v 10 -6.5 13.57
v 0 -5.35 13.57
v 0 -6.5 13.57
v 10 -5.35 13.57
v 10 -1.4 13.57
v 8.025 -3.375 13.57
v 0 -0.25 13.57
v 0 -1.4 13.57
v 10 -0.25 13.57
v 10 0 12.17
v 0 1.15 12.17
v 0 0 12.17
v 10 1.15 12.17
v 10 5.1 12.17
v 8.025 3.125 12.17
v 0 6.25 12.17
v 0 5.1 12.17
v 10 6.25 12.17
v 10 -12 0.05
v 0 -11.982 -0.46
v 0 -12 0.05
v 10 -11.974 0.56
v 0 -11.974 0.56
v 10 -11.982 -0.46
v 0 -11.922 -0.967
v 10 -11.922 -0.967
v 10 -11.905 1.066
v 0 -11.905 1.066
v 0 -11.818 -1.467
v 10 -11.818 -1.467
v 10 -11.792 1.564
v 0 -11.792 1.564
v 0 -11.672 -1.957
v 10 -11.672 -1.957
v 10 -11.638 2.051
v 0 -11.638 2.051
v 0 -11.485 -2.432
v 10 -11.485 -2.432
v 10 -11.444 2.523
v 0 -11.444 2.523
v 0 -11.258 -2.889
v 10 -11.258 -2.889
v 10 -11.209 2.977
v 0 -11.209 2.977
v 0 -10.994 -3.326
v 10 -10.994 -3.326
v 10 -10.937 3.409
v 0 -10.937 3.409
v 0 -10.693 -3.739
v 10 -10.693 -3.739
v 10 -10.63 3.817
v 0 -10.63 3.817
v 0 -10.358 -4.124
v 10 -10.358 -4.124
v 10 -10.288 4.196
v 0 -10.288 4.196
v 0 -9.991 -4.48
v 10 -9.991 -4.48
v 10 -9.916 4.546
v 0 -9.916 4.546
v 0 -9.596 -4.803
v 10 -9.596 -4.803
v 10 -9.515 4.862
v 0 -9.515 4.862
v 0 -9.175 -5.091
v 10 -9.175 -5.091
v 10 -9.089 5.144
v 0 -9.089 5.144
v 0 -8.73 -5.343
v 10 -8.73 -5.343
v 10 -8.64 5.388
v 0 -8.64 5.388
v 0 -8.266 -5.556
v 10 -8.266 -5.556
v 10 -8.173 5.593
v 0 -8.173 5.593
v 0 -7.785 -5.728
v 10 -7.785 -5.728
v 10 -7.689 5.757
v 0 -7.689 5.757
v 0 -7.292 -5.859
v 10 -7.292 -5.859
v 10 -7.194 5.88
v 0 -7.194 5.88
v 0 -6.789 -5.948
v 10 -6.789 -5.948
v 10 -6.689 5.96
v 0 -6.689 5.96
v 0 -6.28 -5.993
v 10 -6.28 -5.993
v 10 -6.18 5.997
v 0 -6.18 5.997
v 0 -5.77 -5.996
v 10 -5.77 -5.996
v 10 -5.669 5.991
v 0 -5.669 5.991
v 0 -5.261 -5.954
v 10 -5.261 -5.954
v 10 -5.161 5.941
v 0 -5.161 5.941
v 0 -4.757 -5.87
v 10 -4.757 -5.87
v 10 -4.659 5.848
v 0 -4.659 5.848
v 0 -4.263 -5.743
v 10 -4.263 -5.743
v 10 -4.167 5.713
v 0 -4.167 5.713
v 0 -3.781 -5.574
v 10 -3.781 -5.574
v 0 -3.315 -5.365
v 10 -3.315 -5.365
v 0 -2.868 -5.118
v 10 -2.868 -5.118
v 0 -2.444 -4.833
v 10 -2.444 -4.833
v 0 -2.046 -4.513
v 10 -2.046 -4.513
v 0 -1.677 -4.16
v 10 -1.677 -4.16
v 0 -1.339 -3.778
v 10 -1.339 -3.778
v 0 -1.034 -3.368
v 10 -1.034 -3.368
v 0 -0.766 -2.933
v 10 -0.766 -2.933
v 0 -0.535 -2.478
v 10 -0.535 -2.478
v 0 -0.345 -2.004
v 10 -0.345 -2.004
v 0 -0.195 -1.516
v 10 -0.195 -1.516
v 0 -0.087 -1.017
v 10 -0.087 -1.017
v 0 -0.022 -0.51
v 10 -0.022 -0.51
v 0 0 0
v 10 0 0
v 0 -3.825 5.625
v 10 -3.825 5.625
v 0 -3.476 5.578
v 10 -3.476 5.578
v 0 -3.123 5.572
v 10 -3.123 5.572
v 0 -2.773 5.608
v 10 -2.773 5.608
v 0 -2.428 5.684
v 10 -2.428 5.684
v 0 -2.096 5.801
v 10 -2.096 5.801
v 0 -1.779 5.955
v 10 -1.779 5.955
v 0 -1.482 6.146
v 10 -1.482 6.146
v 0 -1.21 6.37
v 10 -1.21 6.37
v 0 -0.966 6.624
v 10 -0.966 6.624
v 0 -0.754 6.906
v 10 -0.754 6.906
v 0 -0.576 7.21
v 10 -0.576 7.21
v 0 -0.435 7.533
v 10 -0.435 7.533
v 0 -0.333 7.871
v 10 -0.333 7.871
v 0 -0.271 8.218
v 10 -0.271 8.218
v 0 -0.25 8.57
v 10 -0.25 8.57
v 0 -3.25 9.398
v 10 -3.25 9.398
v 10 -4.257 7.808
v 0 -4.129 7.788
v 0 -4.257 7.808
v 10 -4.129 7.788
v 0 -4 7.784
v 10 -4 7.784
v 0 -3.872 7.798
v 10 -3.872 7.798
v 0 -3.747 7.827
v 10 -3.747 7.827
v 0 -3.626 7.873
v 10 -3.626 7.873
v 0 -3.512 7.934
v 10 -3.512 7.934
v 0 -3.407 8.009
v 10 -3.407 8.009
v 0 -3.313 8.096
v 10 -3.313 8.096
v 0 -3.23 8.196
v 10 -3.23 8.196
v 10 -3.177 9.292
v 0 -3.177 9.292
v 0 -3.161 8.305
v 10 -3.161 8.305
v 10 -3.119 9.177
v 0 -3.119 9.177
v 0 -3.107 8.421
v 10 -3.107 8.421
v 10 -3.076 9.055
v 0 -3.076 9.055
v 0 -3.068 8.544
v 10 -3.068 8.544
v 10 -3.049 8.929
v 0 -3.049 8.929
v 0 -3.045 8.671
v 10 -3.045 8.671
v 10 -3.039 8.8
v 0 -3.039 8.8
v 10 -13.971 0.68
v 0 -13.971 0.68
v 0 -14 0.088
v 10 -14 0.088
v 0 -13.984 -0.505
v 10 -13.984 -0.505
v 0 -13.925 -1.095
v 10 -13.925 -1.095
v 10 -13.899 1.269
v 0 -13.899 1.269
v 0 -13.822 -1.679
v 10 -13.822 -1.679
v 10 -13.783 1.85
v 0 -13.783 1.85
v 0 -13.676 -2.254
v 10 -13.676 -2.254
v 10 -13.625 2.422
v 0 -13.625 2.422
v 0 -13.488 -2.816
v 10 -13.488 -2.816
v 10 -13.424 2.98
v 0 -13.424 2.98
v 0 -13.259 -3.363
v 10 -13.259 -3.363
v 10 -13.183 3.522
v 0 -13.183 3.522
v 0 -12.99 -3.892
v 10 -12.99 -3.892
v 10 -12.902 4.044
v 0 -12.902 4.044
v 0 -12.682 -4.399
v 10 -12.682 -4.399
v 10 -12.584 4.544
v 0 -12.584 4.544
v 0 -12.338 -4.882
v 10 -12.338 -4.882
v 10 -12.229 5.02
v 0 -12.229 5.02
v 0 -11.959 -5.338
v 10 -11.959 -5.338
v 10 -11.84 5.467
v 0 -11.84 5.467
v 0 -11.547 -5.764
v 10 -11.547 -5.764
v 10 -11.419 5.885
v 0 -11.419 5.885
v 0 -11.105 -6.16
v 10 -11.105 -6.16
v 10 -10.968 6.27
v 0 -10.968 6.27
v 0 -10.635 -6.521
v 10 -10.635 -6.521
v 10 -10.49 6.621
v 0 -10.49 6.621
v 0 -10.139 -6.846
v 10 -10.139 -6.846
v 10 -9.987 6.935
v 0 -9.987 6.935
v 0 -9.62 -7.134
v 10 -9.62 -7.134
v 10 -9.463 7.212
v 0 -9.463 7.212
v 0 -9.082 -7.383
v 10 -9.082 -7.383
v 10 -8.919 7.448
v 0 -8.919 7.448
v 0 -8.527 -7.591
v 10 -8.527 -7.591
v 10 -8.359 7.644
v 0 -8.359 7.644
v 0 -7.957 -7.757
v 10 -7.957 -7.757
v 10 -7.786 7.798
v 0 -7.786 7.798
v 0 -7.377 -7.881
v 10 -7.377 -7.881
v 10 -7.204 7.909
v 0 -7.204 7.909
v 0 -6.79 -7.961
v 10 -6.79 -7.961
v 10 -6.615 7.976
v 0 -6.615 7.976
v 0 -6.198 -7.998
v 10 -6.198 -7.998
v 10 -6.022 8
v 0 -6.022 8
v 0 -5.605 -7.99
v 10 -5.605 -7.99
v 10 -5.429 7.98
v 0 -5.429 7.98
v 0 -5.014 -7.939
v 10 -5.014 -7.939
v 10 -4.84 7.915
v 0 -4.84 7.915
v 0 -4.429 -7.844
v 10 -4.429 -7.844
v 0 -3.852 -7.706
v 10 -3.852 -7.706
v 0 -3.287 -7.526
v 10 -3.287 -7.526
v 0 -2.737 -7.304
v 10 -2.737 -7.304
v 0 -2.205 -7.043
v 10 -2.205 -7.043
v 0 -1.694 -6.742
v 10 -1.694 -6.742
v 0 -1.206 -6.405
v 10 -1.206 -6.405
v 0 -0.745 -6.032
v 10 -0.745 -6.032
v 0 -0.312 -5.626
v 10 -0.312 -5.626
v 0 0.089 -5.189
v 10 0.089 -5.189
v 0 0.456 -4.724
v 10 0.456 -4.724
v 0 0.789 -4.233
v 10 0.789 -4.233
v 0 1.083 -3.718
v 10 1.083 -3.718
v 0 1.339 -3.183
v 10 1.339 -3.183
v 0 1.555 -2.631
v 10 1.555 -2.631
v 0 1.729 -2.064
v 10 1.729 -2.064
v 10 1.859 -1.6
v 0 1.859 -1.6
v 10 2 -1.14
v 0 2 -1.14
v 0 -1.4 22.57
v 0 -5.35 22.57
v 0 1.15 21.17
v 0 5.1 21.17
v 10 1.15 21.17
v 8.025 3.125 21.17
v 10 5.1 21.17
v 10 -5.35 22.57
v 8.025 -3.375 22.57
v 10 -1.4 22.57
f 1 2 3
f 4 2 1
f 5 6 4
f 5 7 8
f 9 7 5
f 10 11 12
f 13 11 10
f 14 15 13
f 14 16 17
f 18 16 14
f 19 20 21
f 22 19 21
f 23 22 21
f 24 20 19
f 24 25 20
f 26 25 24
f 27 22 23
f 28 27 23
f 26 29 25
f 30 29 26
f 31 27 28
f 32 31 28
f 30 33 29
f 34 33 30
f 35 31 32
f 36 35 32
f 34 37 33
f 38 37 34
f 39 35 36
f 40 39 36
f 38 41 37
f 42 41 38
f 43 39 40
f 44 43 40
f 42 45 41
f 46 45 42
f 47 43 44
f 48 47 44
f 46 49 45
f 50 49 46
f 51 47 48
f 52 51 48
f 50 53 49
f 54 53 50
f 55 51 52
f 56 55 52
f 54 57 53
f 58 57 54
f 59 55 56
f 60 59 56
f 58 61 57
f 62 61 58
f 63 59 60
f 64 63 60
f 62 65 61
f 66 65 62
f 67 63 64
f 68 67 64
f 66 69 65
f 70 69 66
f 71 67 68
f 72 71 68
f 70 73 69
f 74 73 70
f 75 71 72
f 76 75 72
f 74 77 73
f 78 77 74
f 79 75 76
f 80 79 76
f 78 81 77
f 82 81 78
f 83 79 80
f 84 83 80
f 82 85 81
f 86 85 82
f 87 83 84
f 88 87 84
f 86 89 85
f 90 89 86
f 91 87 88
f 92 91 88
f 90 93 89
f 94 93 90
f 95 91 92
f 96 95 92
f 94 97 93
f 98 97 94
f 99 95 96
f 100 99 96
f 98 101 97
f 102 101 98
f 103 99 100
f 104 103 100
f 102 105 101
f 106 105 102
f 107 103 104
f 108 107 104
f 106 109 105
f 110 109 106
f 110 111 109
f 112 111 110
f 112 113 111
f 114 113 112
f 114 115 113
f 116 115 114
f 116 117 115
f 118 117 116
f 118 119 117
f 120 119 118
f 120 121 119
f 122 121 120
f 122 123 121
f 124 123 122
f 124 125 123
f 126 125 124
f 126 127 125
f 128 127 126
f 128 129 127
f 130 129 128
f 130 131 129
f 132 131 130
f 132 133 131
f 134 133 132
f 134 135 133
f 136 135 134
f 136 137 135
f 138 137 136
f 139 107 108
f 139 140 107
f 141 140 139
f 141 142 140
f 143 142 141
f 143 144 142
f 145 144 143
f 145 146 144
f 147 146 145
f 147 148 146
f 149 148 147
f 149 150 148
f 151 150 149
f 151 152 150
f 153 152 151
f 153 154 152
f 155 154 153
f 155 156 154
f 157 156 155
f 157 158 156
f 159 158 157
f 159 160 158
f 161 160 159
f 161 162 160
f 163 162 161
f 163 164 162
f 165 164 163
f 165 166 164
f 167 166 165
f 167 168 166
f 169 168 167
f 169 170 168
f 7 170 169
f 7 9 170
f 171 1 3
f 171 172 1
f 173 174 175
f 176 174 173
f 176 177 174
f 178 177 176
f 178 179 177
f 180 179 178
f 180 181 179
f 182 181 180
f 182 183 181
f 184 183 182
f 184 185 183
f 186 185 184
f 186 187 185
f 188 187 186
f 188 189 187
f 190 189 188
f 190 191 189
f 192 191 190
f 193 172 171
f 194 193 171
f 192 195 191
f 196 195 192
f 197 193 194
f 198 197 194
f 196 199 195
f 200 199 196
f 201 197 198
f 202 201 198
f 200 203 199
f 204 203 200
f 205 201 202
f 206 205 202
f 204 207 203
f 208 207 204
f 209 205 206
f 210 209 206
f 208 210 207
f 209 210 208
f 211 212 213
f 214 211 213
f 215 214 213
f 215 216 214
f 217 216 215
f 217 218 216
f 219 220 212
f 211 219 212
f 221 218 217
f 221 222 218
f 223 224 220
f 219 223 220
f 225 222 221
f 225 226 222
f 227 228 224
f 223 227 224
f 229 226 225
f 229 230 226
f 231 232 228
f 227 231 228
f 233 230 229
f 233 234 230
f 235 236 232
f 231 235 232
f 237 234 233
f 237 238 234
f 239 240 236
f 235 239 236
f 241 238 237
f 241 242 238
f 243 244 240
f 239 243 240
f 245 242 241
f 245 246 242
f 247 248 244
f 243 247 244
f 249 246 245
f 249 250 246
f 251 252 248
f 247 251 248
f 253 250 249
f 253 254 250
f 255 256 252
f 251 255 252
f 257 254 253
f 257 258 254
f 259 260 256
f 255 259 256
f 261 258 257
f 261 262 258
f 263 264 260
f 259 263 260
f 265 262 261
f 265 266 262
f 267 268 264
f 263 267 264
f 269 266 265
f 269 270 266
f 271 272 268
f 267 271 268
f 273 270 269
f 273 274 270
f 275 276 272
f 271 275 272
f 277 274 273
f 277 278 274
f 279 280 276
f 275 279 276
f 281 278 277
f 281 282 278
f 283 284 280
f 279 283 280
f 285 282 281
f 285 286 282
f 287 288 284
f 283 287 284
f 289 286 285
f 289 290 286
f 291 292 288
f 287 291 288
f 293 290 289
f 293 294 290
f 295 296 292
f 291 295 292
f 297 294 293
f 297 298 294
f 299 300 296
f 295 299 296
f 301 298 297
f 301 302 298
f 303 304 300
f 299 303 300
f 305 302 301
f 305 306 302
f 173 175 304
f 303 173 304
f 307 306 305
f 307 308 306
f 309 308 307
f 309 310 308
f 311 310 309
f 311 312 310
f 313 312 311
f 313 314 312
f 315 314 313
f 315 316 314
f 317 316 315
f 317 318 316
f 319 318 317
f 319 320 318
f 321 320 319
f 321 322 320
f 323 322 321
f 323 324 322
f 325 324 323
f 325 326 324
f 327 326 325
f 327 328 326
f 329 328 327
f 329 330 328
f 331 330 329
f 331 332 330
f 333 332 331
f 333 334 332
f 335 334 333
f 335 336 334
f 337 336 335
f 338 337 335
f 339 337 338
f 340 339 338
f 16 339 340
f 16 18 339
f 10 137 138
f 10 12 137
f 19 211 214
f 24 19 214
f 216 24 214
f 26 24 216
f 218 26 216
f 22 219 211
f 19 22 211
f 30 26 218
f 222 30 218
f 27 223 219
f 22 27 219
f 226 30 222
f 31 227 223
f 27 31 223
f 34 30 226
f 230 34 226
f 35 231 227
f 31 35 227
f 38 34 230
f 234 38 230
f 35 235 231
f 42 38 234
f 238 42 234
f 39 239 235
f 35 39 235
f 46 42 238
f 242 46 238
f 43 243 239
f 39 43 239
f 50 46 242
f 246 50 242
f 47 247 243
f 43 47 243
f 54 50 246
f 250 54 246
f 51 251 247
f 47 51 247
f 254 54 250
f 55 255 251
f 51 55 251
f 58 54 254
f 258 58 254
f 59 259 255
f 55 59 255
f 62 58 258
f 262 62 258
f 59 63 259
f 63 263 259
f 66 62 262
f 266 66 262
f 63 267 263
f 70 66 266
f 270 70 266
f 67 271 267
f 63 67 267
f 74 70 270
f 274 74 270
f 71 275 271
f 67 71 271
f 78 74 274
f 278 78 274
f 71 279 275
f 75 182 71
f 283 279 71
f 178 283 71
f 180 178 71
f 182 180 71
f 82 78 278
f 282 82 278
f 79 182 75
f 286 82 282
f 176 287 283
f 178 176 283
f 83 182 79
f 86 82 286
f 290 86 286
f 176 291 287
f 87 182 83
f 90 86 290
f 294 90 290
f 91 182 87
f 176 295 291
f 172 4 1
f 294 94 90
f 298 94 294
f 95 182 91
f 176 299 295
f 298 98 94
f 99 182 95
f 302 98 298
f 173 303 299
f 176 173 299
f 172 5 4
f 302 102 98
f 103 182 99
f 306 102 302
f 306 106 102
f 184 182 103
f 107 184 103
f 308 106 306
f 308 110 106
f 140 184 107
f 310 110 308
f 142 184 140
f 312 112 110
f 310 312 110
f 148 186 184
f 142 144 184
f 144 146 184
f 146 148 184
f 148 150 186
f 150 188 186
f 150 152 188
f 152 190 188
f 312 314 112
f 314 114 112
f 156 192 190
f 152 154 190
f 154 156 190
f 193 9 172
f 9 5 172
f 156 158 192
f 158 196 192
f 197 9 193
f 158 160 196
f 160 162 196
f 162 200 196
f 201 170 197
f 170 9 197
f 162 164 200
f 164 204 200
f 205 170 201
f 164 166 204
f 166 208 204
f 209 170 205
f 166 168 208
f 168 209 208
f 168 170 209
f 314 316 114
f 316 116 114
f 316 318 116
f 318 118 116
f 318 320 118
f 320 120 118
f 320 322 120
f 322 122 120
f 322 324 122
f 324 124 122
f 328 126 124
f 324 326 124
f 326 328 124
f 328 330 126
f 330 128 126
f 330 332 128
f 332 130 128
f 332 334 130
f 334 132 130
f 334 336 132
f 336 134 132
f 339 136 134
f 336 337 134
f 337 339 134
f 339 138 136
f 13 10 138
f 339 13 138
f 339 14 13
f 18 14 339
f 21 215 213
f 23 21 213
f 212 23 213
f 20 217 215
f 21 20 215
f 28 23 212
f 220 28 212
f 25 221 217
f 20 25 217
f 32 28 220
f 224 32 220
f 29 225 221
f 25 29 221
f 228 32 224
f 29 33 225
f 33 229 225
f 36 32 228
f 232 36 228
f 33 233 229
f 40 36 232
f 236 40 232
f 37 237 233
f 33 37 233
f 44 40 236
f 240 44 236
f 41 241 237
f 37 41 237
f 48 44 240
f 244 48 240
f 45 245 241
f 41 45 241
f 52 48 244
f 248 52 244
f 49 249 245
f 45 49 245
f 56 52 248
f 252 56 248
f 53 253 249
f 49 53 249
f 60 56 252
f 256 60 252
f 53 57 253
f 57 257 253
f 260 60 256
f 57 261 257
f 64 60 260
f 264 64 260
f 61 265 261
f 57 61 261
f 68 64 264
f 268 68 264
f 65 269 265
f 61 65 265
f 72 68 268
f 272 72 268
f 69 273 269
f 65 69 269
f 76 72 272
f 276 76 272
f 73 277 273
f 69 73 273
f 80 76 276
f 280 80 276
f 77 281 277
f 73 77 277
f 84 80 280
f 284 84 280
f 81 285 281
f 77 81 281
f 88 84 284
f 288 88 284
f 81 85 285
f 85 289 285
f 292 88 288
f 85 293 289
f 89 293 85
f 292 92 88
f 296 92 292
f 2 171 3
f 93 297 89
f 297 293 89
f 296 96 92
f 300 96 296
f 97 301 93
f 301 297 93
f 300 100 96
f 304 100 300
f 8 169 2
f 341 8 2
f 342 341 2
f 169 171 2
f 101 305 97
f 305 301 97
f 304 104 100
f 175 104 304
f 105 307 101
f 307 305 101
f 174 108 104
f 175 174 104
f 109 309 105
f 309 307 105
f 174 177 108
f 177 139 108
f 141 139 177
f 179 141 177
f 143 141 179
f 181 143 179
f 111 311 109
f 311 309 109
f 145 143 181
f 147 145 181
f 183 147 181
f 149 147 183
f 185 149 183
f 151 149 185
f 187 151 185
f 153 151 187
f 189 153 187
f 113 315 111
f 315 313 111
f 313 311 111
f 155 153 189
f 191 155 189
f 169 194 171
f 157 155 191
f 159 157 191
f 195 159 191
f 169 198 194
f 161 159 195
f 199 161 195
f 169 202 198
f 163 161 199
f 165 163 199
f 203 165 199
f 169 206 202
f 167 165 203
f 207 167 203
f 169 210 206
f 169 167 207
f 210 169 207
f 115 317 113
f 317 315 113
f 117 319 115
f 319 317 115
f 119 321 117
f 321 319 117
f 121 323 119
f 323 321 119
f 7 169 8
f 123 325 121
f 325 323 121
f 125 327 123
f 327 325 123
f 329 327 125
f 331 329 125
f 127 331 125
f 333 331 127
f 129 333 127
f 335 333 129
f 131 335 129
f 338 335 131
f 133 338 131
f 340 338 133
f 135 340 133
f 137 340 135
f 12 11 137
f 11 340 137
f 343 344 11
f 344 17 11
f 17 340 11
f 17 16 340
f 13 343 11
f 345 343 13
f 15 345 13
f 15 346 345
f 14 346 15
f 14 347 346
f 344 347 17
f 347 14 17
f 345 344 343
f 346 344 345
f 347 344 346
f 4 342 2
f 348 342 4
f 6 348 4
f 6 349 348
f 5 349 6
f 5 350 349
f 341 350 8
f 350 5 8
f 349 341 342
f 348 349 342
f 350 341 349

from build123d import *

# Parameters (mm, degrees)
BOSS_EXTRUDE1_DEPTH = 10
BOSS_EXTRUDE4_DEPTH = 9
BOSS_EXTRUDE5_DEPTH = 9


with BuildPart() as part:
    # Sketch1 → Boss-Extrude1 (new body)
    with BuildSketch(Plane(origin=(0, 0, 0), x_dir=(0, 0, -1), z_dir=(1, 0, 0))):
        with BuildLine():
            Line((-8.569568251, -0.25), (-13.569568251, -0.25))
            Line((-13.569568251, -0.25), (-13.569568251, -6.5))
            Line((-13.569568251, -6.5), (-9.398337093, -3.25))
            ThreePointArc((-9.398337093, -3.25), (-8.248911648, -3.193857851), (-7.80775466, -4.256736633))
            ThreePointArc((-7.80775466, -4.256736633), (4.148003929, -12.840618642), (2.063858472, 1.729197126))
            ThreePointArc((2.063858472, 1.729197126), (1.600092206, 1.859034064), (1.13958663, 2))
            Line((1.13958663, 2), (-12.169568251, 6.25))
            Line((-12.169568251, 6.25), (-12.169568251, 0))
            Line((-12.169568251, 0), (0, 0))
            ThreePointArc((0, 0), (3.535533906, -10.847679857), (-5.7130455, -4.166666667))
            ThreePointArc((-5.7130455, -4.166666667), (-6.145728322, -1.482233047), (-8.569568251, -0.25))
        make_face()
    extrude(amount=BOSS_EXTRUDE1_DEPTH)

    # Sketch2 → Boss-Extrude4 (add)
    with BuildSketch(Plane.XY.offset(12.169568251)):
        Polygon((0, 1.15), (10, 1.15), (8.025, 3.125), (10, 5.1), (0, 5.1), align=None)
    extrude(amount=BOSS_EXTRUDE4_DEPTH)

    # Sketch3 → Boss-Extrude5 (add)
    with BuildSketch(Plane.XY.offset(13.569568251)):
        Polygon((0, -5.35), (10, -5.35), (8.025, -3.375), (10, -1.4), (0, -1.4), align=None)
    extrude(amount=BOSS_EXTRUDE5_DEPTH)


solid = part.part
